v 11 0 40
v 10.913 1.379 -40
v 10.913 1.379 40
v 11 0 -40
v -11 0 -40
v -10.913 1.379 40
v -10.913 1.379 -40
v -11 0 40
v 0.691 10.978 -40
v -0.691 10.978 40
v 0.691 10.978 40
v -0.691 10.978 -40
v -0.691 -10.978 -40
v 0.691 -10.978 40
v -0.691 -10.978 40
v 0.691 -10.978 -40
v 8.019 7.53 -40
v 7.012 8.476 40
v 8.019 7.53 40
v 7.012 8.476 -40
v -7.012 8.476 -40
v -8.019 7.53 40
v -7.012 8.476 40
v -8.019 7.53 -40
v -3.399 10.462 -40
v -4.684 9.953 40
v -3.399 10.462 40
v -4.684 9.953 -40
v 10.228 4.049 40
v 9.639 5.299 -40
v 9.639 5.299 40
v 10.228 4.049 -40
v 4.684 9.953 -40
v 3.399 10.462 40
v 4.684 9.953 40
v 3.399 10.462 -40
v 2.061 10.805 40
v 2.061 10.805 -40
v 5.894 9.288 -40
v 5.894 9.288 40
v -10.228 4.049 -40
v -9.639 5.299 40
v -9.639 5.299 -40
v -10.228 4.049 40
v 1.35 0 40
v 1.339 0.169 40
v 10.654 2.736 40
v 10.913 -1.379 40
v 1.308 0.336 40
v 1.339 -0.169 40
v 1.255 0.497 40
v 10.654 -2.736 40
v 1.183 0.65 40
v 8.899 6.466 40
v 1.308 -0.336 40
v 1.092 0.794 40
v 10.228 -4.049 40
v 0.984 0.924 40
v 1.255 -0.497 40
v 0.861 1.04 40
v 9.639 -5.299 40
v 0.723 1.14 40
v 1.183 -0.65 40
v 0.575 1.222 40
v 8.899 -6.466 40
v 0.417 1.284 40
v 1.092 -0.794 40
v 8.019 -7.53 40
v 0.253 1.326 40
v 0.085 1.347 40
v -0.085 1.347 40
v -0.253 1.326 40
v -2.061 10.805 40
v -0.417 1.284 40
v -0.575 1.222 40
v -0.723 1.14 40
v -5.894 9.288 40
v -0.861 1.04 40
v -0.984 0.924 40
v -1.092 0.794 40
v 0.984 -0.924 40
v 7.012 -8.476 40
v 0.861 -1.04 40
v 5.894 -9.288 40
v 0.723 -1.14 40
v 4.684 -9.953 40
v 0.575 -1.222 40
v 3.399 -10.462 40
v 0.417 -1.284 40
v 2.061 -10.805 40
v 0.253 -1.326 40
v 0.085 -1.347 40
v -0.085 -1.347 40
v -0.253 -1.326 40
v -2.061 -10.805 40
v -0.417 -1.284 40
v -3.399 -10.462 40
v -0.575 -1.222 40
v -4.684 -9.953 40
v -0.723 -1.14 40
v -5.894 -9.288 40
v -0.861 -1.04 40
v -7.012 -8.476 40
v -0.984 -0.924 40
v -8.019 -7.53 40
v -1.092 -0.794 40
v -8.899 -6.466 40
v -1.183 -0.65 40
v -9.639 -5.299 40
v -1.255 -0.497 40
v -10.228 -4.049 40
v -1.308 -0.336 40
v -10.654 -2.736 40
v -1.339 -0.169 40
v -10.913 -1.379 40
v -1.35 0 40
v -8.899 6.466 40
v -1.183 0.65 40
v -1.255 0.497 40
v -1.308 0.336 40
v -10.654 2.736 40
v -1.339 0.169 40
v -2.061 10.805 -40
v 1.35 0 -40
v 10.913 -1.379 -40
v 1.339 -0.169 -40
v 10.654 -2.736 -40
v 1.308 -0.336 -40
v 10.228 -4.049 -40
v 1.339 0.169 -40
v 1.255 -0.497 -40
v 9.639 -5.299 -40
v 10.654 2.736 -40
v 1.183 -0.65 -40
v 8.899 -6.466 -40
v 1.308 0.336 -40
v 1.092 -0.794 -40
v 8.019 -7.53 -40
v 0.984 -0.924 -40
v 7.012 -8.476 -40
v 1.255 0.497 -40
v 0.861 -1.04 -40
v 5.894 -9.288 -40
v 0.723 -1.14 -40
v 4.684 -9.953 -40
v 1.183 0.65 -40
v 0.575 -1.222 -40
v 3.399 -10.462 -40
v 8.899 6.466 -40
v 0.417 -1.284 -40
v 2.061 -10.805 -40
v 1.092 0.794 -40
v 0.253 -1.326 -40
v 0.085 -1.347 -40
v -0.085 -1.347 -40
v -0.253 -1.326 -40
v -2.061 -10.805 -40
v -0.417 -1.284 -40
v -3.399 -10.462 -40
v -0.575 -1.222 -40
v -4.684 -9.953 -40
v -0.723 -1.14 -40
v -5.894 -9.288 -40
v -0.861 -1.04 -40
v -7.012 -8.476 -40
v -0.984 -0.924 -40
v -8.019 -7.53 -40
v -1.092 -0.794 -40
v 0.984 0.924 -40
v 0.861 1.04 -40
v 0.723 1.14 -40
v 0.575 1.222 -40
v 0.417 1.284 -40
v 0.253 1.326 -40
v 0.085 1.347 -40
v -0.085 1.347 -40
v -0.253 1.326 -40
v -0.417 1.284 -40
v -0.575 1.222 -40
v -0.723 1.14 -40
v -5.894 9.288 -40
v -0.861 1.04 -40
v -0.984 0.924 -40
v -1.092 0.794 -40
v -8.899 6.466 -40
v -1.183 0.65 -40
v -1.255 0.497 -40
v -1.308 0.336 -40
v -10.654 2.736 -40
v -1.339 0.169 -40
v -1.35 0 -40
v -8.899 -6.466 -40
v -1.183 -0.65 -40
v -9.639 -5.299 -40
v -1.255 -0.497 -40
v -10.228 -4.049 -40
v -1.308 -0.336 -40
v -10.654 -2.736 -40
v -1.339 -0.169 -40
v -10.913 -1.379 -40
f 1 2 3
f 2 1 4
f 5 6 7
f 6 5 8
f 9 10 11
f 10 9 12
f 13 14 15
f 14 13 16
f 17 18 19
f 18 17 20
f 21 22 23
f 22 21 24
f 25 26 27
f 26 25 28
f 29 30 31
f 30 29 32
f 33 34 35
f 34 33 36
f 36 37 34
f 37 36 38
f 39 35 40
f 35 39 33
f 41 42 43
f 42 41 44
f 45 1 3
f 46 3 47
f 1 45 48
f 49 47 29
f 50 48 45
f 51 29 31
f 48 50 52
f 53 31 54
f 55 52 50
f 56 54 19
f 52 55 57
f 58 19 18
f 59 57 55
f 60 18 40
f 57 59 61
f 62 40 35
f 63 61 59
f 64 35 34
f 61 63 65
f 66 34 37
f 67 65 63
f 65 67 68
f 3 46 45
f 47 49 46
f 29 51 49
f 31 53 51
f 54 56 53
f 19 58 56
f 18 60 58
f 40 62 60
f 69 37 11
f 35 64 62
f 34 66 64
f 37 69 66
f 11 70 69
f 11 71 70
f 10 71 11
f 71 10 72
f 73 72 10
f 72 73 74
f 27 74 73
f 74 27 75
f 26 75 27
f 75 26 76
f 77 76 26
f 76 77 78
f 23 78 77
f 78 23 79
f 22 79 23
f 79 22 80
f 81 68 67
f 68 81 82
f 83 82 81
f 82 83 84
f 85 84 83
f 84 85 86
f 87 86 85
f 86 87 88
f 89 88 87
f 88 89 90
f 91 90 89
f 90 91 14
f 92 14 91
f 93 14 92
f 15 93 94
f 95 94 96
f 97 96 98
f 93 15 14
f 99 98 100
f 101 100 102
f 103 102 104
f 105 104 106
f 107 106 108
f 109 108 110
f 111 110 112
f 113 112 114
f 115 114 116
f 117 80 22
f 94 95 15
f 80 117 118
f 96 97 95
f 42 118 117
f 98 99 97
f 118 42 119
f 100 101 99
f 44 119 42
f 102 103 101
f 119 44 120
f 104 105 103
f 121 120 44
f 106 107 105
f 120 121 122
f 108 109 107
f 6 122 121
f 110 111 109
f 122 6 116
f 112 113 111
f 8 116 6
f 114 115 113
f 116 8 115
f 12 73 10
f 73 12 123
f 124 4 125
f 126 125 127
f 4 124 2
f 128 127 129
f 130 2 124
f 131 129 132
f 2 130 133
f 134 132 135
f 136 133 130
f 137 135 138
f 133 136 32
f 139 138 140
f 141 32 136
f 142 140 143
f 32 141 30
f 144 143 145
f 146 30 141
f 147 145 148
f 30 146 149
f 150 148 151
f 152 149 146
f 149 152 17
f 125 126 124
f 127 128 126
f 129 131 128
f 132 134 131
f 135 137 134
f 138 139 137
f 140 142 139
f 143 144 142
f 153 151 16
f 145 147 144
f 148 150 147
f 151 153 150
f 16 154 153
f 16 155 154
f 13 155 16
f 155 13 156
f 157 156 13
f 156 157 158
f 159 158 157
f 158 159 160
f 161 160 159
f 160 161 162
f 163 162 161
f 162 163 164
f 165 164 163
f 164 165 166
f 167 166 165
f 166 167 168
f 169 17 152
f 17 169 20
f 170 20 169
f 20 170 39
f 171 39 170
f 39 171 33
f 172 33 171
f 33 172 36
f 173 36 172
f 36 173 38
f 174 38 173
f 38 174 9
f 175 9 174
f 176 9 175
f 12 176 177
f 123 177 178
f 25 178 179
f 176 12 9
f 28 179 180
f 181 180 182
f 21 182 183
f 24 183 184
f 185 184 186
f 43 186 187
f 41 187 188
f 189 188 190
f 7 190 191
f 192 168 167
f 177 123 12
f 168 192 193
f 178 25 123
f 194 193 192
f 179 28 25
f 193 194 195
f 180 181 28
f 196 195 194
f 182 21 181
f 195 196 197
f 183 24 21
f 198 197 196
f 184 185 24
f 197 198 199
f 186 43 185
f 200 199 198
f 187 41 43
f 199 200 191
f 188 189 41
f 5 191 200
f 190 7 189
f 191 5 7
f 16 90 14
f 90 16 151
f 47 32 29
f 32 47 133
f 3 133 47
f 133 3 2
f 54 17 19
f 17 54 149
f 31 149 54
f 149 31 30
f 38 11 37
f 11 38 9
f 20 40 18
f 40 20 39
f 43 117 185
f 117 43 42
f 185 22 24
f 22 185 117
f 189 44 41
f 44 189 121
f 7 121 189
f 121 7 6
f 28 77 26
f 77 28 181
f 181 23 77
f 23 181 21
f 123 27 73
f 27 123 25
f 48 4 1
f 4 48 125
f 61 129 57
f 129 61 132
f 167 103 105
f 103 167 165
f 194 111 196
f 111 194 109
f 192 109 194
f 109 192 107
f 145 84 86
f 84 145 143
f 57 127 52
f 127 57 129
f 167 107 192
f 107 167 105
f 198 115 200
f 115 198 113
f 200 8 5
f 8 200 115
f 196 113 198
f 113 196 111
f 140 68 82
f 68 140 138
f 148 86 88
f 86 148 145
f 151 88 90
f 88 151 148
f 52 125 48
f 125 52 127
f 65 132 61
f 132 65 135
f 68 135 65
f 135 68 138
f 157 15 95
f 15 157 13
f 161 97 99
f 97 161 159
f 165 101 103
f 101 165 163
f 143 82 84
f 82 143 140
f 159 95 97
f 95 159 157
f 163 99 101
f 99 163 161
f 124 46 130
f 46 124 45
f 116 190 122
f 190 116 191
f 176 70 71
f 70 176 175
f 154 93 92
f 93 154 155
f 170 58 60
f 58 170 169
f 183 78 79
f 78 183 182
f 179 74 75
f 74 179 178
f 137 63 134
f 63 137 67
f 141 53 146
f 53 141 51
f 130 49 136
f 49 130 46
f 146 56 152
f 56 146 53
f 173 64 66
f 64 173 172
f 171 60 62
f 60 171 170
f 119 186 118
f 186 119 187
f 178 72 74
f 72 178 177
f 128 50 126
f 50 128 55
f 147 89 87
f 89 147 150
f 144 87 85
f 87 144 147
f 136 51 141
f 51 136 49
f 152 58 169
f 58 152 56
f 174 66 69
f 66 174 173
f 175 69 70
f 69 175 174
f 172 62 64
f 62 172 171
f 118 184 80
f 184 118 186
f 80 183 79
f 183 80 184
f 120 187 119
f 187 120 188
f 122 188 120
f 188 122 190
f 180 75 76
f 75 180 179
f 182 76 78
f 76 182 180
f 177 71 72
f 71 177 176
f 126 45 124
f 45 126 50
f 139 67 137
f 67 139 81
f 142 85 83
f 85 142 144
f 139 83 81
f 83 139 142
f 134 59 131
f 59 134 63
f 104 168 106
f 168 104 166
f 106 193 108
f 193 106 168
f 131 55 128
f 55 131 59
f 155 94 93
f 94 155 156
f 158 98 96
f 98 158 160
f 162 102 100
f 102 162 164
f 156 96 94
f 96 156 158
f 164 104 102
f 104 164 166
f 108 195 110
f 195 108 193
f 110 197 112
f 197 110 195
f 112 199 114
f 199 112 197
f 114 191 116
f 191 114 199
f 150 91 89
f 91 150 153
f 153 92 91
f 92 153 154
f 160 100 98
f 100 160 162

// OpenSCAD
$fn = 50;


difference() {
	union() {
		translate(v = [0, 0, -40.0000000000]) {
			cylinder(h = 80, r = 11.0000000000);
		}
	}
	union() {
		translate(v = [0, 0, -100.0000000000]) {
			cylinder(h = 200, r = 1.3500000000);
		}
	}
}
